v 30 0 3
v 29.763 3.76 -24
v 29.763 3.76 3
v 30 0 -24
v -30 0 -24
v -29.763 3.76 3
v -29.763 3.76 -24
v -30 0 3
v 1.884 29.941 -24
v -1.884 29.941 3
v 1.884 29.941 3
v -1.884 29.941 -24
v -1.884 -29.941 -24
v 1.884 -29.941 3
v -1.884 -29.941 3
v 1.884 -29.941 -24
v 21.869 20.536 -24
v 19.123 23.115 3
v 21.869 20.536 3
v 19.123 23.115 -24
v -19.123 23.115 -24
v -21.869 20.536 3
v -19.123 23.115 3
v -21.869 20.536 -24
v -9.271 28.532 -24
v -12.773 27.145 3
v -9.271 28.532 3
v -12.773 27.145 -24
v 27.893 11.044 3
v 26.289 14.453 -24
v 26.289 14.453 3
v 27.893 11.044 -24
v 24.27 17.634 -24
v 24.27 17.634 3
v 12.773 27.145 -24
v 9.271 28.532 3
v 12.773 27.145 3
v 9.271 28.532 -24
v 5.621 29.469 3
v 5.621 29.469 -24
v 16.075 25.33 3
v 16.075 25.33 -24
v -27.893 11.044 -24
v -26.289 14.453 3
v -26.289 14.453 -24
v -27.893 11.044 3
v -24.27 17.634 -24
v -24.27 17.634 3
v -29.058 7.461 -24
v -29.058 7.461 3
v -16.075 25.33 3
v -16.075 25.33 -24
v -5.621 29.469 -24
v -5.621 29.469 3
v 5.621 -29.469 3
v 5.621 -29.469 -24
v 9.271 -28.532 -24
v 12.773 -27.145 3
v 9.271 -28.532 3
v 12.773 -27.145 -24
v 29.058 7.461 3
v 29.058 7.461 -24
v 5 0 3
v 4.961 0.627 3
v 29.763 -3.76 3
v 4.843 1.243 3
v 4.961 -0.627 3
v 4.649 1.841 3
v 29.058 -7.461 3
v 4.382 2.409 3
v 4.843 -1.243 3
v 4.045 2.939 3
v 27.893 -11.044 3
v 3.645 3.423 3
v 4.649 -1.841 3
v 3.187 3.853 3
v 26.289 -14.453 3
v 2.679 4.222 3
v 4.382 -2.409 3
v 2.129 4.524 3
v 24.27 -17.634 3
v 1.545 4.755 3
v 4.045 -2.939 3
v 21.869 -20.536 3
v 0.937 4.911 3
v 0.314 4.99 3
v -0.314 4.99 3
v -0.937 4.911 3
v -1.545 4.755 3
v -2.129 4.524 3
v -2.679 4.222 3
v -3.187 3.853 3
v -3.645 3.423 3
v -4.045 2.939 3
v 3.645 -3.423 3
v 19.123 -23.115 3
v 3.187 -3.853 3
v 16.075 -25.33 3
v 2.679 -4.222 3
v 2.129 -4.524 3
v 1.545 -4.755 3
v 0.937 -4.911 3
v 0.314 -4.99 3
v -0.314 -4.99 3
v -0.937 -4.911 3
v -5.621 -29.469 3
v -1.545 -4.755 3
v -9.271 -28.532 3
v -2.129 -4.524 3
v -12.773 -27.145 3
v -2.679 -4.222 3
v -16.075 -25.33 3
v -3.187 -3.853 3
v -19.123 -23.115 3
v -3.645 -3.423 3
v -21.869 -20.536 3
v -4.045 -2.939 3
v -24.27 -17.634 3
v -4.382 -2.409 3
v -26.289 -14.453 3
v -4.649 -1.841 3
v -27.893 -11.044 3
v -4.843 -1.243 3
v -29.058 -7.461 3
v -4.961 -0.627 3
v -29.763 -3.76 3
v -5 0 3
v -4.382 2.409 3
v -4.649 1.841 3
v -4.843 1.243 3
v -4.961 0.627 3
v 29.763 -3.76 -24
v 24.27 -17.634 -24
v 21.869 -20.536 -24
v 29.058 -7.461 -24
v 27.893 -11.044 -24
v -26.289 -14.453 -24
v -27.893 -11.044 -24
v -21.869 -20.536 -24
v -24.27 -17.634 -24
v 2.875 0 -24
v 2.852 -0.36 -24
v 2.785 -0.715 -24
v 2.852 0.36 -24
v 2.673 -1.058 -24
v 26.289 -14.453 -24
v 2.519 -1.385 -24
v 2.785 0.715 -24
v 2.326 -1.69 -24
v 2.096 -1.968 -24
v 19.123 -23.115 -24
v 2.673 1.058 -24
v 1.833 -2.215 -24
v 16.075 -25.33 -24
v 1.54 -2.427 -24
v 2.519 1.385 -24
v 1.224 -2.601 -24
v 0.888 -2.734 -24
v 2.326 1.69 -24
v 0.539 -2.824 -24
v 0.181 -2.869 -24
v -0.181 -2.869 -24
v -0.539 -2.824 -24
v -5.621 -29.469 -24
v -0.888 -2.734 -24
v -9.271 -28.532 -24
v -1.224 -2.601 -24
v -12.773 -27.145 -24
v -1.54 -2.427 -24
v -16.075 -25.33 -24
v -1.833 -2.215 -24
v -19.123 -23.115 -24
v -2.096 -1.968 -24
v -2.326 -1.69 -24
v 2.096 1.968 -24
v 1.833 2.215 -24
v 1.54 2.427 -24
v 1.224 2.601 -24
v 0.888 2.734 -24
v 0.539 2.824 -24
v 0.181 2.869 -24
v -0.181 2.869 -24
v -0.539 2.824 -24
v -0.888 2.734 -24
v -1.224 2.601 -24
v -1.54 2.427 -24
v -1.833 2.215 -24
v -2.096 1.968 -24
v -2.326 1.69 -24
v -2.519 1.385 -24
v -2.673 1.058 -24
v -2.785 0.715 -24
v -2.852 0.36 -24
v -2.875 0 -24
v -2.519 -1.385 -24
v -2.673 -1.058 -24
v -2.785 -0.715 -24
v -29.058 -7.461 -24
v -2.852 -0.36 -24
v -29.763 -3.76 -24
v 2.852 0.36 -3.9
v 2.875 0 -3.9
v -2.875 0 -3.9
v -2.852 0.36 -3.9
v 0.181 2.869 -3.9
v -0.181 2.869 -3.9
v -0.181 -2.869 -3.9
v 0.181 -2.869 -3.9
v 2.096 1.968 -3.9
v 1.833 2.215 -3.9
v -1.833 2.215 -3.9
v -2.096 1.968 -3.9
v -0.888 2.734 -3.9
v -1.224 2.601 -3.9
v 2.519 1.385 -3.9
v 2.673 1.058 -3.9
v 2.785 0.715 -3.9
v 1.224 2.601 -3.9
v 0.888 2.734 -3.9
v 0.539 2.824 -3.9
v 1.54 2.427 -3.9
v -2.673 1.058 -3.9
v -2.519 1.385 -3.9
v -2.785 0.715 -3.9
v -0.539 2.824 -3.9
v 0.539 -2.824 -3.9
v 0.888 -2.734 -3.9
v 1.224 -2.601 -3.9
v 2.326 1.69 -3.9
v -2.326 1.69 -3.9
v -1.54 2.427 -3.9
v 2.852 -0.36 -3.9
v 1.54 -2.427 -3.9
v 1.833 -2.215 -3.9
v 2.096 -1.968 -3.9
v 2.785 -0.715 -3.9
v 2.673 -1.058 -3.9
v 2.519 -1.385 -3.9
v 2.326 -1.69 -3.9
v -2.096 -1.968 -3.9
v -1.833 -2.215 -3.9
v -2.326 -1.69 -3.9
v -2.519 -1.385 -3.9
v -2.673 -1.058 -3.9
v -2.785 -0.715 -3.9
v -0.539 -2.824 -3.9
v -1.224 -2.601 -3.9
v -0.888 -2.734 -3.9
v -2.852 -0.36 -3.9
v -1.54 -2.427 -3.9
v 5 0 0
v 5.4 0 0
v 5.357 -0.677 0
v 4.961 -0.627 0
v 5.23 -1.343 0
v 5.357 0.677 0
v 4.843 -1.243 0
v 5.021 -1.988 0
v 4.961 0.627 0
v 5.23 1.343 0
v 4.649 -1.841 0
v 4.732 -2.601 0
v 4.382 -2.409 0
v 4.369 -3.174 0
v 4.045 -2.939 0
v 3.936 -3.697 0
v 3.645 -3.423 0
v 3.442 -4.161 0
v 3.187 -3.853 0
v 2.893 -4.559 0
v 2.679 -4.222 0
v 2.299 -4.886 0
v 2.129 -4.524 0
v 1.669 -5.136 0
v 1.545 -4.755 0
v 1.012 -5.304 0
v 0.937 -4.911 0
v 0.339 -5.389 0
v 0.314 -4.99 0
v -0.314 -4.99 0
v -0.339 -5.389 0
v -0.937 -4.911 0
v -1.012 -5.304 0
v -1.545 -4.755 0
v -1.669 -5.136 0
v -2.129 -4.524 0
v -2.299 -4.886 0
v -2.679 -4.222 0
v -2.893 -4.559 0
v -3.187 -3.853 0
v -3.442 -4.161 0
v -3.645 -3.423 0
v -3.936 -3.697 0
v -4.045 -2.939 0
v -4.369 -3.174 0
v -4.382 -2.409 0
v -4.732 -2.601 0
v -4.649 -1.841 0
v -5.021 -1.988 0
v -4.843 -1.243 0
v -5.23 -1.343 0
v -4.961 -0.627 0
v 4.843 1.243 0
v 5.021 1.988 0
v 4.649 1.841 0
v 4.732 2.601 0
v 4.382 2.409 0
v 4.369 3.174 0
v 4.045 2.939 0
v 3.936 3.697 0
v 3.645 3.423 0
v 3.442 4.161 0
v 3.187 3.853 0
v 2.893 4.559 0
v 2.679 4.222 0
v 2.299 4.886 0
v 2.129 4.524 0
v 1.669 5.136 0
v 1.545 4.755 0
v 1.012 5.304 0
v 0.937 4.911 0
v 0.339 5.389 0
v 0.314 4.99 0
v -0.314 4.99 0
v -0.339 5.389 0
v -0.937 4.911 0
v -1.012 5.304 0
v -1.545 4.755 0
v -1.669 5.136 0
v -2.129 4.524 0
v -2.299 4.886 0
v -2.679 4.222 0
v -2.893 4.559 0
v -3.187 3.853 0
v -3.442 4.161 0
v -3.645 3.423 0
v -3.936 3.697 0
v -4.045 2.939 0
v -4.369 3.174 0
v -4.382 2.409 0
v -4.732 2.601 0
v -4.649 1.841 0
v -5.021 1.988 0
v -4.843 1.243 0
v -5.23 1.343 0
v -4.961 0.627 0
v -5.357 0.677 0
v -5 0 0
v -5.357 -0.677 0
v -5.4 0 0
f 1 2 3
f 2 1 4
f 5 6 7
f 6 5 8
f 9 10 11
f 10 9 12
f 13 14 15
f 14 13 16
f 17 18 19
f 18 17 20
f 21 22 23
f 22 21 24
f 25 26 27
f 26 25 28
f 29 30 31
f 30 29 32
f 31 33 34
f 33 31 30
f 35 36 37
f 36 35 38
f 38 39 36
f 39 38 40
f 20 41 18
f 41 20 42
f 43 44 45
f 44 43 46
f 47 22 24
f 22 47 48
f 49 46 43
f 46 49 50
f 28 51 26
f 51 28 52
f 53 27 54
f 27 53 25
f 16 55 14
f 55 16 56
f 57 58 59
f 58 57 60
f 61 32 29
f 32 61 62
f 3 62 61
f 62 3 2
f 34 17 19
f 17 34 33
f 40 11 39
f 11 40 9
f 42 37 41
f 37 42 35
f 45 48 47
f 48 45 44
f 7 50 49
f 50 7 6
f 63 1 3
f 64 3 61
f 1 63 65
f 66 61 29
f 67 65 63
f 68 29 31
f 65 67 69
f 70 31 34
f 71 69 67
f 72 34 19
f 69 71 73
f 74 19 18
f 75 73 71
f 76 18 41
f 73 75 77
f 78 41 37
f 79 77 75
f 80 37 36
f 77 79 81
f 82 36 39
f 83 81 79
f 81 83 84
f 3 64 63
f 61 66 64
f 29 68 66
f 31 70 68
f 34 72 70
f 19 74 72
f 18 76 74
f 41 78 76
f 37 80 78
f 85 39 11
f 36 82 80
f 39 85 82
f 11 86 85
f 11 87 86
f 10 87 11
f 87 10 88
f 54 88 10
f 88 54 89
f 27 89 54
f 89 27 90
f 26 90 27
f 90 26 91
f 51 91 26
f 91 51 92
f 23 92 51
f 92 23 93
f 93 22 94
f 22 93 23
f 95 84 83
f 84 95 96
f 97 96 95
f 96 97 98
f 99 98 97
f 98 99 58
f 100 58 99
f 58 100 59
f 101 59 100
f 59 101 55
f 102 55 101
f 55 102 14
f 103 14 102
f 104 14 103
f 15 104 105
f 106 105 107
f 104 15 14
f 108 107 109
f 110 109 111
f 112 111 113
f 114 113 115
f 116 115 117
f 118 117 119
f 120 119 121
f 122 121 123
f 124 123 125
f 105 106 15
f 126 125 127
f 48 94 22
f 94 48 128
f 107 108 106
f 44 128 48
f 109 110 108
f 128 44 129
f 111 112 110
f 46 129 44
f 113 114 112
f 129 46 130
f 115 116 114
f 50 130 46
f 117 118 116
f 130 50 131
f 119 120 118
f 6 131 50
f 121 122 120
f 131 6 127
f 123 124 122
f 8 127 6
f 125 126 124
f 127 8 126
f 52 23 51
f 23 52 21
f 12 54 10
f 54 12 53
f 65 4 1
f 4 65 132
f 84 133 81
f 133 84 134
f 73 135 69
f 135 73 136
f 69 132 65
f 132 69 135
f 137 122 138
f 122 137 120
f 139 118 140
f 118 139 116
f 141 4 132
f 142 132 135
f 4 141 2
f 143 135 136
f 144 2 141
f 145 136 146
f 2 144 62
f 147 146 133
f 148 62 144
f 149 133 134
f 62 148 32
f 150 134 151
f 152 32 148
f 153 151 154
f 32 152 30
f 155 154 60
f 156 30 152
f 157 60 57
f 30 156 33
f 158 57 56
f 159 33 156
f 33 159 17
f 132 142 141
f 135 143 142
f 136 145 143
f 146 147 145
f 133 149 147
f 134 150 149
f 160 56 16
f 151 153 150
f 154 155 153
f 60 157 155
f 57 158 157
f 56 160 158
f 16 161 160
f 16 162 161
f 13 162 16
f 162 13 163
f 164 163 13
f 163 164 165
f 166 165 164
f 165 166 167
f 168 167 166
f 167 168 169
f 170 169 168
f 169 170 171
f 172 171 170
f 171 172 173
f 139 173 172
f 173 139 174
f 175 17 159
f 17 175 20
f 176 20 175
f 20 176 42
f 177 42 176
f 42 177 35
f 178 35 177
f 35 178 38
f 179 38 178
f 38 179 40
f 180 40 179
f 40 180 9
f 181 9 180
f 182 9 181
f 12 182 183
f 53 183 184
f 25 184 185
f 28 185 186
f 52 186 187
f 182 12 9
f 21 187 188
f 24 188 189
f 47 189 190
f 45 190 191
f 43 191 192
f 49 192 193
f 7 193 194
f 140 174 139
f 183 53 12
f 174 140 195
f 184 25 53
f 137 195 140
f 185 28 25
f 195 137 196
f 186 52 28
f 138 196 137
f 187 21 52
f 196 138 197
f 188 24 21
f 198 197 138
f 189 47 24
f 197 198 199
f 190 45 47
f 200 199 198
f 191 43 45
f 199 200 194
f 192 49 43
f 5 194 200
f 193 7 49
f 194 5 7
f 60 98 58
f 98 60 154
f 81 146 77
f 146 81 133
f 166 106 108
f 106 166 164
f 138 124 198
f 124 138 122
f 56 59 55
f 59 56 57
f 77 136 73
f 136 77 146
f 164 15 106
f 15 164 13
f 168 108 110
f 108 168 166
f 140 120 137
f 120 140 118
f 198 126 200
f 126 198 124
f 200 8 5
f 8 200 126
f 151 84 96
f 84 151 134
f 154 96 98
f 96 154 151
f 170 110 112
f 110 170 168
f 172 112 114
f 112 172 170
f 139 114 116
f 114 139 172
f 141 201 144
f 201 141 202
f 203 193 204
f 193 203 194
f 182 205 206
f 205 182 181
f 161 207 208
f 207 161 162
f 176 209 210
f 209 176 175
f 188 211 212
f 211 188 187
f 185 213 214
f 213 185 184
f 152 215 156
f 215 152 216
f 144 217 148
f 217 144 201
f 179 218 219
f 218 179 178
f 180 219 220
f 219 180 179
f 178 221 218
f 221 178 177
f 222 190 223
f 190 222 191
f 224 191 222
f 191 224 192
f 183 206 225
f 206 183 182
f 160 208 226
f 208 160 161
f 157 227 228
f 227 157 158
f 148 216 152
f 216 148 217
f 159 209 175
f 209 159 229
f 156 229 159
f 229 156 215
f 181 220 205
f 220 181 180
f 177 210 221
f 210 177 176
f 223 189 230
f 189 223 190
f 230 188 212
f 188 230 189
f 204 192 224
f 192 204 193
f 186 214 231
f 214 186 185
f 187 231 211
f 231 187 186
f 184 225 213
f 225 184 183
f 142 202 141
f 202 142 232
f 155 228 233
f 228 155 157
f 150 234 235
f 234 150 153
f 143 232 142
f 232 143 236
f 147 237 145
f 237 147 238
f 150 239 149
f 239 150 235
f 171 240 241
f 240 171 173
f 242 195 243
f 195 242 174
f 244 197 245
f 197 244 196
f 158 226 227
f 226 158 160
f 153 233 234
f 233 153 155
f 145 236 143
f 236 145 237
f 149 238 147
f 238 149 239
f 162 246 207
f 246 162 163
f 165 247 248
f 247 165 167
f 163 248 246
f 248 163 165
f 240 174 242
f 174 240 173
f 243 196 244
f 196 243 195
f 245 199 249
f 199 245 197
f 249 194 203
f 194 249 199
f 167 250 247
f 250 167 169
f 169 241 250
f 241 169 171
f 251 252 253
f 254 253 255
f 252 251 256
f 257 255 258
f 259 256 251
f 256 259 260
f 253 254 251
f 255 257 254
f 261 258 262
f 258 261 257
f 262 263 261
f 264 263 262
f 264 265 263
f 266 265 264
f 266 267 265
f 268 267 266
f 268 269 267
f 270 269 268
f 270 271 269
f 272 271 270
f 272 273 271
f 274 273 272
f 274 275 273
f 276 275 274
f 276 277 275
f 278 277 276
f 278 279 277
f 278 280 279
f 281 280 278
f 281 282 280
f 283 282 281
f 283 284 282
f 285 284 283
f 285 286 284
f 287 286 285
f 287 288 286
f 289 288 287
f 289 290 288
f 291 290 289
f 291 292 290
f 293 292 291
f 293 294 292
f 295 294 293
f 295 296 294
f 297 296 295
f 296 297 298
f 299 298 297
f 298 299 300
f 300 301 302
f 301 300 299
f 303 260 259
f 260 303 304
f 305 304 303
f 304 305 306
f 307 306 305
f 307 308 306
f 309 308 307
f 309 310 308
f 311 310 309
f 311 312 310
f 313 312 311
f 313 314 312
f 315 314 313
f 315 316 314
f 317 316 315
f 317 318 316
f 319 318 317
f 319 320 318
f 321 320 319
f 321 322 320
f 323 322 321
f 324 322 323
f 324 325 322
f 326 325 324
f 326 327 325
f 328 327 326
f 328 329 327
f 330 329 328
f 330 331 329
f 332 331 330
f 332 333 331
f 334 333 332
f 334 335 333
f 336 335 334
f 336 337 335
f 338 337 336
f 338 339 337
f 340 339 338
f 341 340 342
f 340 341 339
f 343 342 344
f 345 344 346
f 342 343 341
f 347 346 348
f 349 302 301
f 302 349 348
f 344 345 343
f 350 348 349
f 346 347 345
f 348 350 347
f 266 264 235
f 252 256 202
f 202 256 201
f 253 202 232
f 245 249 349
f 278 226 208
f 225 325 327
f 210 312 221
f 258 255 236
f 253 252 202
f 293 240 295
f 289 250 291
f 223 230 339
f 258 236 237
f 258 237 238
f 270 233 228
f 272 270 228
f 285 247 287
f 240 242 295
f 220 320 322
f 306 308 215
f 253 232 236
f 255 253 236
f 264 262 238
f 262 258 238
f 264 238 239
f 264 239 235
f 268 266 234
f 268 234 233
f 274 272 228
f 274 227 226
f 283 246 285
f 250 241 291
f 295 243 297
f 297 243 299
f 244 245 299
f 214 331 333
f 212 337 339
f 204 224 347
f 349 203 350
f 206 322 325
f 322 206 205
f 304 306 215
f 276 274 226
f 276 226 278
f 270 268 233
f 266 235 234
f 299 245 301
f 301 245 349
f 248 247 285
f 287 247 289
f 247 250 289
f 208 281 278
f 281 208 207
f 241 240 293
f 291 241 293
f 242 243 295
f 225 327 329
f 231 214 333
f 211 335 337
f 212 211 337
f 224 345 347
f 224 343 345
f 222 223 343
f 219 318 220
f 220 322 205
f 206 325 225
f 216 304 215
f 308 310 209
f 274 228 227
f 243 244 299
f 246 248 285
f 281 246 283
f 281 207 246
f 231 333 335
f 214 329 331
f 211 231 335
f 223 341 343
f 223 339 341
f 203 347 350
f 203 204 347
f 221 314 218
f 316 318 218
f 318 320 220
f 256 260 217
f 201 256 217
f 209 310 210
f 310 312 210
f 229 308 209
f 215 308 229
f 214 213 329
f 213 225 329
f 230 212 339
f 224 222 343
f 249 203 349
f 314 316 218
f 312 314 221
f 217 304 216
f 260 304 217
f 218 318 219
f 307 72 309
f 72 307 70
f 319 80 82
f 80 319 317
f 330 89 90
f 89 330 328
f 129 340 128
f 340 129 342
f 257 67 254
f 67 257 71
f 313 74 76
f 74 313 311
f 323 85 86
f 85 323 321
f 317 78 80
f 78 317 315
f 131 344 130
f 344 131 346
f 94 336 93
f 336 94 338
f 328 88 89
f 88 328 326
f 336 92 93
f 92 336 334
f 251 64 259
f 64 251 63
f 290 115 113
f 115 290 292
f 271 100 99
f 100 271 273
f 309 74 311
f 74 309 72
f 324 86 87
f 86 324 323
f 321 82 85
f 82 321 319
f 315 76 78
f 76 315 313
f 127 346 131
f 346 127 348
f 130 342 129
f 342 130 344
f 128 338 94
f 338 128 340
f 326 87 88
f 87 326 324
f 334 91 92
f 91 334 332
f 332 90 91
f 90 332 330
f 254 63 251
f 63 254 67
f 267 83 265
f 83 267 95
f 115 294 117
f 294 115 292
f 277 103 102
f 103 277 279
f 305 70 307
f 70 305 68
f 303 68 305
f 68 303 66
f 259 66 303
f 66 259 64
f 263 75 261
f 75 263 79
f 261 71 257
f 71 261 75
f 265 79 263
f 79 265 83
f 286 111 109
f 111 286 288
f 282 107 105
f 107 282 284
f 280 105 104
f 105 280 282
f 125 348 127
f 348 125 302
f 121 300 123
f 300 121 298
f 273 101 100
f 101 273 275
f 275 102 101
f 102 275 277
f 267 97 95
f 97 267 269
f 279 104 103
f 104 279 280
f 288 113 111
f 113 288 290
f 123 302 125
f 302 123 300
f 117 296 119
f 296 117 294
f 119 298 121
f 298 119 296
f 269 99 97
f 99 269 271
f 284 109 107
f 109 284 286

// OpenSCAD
$fn = 50;


difference() {
	union() {
		translate(v = [0, 0, -24.0000000000]) {
			cylinder(h = 27, r = 30.0000000000);
		}
		#translate(v = [0, 0, -27.0000000000]) {
			cylinder(h = 27, r = 2.8750000000);
		}
	}
	union() {
		translate(v = [0, 0, 0]) {
			rotate(a = [0, 0, 0]) {
				difference() {
					union() {
						translate(v = [0, 0, -27.0000000000]) {
							cylinder(h = 27, r = 2.6000000000);
						}
						translate(v = [0, 0, -3.9000000000]) {
							cylinder(h = 3.9000000000, r1 = 2.8750000000, r2 = 5.4000000000);
						}
						translate(v = [0, 0, -27.0000000000]) {
							cylinder(h = 27, r = 2.8750000000);
						}
						translate(v = [0, 0, -27.0000000000]) {
							cylinder(h = 27, r = 2.6000000000);
						}
					}
					union();
				}
			}
		}
		#cylinder(h = 3, r = 5.0000000000);
	}
}
